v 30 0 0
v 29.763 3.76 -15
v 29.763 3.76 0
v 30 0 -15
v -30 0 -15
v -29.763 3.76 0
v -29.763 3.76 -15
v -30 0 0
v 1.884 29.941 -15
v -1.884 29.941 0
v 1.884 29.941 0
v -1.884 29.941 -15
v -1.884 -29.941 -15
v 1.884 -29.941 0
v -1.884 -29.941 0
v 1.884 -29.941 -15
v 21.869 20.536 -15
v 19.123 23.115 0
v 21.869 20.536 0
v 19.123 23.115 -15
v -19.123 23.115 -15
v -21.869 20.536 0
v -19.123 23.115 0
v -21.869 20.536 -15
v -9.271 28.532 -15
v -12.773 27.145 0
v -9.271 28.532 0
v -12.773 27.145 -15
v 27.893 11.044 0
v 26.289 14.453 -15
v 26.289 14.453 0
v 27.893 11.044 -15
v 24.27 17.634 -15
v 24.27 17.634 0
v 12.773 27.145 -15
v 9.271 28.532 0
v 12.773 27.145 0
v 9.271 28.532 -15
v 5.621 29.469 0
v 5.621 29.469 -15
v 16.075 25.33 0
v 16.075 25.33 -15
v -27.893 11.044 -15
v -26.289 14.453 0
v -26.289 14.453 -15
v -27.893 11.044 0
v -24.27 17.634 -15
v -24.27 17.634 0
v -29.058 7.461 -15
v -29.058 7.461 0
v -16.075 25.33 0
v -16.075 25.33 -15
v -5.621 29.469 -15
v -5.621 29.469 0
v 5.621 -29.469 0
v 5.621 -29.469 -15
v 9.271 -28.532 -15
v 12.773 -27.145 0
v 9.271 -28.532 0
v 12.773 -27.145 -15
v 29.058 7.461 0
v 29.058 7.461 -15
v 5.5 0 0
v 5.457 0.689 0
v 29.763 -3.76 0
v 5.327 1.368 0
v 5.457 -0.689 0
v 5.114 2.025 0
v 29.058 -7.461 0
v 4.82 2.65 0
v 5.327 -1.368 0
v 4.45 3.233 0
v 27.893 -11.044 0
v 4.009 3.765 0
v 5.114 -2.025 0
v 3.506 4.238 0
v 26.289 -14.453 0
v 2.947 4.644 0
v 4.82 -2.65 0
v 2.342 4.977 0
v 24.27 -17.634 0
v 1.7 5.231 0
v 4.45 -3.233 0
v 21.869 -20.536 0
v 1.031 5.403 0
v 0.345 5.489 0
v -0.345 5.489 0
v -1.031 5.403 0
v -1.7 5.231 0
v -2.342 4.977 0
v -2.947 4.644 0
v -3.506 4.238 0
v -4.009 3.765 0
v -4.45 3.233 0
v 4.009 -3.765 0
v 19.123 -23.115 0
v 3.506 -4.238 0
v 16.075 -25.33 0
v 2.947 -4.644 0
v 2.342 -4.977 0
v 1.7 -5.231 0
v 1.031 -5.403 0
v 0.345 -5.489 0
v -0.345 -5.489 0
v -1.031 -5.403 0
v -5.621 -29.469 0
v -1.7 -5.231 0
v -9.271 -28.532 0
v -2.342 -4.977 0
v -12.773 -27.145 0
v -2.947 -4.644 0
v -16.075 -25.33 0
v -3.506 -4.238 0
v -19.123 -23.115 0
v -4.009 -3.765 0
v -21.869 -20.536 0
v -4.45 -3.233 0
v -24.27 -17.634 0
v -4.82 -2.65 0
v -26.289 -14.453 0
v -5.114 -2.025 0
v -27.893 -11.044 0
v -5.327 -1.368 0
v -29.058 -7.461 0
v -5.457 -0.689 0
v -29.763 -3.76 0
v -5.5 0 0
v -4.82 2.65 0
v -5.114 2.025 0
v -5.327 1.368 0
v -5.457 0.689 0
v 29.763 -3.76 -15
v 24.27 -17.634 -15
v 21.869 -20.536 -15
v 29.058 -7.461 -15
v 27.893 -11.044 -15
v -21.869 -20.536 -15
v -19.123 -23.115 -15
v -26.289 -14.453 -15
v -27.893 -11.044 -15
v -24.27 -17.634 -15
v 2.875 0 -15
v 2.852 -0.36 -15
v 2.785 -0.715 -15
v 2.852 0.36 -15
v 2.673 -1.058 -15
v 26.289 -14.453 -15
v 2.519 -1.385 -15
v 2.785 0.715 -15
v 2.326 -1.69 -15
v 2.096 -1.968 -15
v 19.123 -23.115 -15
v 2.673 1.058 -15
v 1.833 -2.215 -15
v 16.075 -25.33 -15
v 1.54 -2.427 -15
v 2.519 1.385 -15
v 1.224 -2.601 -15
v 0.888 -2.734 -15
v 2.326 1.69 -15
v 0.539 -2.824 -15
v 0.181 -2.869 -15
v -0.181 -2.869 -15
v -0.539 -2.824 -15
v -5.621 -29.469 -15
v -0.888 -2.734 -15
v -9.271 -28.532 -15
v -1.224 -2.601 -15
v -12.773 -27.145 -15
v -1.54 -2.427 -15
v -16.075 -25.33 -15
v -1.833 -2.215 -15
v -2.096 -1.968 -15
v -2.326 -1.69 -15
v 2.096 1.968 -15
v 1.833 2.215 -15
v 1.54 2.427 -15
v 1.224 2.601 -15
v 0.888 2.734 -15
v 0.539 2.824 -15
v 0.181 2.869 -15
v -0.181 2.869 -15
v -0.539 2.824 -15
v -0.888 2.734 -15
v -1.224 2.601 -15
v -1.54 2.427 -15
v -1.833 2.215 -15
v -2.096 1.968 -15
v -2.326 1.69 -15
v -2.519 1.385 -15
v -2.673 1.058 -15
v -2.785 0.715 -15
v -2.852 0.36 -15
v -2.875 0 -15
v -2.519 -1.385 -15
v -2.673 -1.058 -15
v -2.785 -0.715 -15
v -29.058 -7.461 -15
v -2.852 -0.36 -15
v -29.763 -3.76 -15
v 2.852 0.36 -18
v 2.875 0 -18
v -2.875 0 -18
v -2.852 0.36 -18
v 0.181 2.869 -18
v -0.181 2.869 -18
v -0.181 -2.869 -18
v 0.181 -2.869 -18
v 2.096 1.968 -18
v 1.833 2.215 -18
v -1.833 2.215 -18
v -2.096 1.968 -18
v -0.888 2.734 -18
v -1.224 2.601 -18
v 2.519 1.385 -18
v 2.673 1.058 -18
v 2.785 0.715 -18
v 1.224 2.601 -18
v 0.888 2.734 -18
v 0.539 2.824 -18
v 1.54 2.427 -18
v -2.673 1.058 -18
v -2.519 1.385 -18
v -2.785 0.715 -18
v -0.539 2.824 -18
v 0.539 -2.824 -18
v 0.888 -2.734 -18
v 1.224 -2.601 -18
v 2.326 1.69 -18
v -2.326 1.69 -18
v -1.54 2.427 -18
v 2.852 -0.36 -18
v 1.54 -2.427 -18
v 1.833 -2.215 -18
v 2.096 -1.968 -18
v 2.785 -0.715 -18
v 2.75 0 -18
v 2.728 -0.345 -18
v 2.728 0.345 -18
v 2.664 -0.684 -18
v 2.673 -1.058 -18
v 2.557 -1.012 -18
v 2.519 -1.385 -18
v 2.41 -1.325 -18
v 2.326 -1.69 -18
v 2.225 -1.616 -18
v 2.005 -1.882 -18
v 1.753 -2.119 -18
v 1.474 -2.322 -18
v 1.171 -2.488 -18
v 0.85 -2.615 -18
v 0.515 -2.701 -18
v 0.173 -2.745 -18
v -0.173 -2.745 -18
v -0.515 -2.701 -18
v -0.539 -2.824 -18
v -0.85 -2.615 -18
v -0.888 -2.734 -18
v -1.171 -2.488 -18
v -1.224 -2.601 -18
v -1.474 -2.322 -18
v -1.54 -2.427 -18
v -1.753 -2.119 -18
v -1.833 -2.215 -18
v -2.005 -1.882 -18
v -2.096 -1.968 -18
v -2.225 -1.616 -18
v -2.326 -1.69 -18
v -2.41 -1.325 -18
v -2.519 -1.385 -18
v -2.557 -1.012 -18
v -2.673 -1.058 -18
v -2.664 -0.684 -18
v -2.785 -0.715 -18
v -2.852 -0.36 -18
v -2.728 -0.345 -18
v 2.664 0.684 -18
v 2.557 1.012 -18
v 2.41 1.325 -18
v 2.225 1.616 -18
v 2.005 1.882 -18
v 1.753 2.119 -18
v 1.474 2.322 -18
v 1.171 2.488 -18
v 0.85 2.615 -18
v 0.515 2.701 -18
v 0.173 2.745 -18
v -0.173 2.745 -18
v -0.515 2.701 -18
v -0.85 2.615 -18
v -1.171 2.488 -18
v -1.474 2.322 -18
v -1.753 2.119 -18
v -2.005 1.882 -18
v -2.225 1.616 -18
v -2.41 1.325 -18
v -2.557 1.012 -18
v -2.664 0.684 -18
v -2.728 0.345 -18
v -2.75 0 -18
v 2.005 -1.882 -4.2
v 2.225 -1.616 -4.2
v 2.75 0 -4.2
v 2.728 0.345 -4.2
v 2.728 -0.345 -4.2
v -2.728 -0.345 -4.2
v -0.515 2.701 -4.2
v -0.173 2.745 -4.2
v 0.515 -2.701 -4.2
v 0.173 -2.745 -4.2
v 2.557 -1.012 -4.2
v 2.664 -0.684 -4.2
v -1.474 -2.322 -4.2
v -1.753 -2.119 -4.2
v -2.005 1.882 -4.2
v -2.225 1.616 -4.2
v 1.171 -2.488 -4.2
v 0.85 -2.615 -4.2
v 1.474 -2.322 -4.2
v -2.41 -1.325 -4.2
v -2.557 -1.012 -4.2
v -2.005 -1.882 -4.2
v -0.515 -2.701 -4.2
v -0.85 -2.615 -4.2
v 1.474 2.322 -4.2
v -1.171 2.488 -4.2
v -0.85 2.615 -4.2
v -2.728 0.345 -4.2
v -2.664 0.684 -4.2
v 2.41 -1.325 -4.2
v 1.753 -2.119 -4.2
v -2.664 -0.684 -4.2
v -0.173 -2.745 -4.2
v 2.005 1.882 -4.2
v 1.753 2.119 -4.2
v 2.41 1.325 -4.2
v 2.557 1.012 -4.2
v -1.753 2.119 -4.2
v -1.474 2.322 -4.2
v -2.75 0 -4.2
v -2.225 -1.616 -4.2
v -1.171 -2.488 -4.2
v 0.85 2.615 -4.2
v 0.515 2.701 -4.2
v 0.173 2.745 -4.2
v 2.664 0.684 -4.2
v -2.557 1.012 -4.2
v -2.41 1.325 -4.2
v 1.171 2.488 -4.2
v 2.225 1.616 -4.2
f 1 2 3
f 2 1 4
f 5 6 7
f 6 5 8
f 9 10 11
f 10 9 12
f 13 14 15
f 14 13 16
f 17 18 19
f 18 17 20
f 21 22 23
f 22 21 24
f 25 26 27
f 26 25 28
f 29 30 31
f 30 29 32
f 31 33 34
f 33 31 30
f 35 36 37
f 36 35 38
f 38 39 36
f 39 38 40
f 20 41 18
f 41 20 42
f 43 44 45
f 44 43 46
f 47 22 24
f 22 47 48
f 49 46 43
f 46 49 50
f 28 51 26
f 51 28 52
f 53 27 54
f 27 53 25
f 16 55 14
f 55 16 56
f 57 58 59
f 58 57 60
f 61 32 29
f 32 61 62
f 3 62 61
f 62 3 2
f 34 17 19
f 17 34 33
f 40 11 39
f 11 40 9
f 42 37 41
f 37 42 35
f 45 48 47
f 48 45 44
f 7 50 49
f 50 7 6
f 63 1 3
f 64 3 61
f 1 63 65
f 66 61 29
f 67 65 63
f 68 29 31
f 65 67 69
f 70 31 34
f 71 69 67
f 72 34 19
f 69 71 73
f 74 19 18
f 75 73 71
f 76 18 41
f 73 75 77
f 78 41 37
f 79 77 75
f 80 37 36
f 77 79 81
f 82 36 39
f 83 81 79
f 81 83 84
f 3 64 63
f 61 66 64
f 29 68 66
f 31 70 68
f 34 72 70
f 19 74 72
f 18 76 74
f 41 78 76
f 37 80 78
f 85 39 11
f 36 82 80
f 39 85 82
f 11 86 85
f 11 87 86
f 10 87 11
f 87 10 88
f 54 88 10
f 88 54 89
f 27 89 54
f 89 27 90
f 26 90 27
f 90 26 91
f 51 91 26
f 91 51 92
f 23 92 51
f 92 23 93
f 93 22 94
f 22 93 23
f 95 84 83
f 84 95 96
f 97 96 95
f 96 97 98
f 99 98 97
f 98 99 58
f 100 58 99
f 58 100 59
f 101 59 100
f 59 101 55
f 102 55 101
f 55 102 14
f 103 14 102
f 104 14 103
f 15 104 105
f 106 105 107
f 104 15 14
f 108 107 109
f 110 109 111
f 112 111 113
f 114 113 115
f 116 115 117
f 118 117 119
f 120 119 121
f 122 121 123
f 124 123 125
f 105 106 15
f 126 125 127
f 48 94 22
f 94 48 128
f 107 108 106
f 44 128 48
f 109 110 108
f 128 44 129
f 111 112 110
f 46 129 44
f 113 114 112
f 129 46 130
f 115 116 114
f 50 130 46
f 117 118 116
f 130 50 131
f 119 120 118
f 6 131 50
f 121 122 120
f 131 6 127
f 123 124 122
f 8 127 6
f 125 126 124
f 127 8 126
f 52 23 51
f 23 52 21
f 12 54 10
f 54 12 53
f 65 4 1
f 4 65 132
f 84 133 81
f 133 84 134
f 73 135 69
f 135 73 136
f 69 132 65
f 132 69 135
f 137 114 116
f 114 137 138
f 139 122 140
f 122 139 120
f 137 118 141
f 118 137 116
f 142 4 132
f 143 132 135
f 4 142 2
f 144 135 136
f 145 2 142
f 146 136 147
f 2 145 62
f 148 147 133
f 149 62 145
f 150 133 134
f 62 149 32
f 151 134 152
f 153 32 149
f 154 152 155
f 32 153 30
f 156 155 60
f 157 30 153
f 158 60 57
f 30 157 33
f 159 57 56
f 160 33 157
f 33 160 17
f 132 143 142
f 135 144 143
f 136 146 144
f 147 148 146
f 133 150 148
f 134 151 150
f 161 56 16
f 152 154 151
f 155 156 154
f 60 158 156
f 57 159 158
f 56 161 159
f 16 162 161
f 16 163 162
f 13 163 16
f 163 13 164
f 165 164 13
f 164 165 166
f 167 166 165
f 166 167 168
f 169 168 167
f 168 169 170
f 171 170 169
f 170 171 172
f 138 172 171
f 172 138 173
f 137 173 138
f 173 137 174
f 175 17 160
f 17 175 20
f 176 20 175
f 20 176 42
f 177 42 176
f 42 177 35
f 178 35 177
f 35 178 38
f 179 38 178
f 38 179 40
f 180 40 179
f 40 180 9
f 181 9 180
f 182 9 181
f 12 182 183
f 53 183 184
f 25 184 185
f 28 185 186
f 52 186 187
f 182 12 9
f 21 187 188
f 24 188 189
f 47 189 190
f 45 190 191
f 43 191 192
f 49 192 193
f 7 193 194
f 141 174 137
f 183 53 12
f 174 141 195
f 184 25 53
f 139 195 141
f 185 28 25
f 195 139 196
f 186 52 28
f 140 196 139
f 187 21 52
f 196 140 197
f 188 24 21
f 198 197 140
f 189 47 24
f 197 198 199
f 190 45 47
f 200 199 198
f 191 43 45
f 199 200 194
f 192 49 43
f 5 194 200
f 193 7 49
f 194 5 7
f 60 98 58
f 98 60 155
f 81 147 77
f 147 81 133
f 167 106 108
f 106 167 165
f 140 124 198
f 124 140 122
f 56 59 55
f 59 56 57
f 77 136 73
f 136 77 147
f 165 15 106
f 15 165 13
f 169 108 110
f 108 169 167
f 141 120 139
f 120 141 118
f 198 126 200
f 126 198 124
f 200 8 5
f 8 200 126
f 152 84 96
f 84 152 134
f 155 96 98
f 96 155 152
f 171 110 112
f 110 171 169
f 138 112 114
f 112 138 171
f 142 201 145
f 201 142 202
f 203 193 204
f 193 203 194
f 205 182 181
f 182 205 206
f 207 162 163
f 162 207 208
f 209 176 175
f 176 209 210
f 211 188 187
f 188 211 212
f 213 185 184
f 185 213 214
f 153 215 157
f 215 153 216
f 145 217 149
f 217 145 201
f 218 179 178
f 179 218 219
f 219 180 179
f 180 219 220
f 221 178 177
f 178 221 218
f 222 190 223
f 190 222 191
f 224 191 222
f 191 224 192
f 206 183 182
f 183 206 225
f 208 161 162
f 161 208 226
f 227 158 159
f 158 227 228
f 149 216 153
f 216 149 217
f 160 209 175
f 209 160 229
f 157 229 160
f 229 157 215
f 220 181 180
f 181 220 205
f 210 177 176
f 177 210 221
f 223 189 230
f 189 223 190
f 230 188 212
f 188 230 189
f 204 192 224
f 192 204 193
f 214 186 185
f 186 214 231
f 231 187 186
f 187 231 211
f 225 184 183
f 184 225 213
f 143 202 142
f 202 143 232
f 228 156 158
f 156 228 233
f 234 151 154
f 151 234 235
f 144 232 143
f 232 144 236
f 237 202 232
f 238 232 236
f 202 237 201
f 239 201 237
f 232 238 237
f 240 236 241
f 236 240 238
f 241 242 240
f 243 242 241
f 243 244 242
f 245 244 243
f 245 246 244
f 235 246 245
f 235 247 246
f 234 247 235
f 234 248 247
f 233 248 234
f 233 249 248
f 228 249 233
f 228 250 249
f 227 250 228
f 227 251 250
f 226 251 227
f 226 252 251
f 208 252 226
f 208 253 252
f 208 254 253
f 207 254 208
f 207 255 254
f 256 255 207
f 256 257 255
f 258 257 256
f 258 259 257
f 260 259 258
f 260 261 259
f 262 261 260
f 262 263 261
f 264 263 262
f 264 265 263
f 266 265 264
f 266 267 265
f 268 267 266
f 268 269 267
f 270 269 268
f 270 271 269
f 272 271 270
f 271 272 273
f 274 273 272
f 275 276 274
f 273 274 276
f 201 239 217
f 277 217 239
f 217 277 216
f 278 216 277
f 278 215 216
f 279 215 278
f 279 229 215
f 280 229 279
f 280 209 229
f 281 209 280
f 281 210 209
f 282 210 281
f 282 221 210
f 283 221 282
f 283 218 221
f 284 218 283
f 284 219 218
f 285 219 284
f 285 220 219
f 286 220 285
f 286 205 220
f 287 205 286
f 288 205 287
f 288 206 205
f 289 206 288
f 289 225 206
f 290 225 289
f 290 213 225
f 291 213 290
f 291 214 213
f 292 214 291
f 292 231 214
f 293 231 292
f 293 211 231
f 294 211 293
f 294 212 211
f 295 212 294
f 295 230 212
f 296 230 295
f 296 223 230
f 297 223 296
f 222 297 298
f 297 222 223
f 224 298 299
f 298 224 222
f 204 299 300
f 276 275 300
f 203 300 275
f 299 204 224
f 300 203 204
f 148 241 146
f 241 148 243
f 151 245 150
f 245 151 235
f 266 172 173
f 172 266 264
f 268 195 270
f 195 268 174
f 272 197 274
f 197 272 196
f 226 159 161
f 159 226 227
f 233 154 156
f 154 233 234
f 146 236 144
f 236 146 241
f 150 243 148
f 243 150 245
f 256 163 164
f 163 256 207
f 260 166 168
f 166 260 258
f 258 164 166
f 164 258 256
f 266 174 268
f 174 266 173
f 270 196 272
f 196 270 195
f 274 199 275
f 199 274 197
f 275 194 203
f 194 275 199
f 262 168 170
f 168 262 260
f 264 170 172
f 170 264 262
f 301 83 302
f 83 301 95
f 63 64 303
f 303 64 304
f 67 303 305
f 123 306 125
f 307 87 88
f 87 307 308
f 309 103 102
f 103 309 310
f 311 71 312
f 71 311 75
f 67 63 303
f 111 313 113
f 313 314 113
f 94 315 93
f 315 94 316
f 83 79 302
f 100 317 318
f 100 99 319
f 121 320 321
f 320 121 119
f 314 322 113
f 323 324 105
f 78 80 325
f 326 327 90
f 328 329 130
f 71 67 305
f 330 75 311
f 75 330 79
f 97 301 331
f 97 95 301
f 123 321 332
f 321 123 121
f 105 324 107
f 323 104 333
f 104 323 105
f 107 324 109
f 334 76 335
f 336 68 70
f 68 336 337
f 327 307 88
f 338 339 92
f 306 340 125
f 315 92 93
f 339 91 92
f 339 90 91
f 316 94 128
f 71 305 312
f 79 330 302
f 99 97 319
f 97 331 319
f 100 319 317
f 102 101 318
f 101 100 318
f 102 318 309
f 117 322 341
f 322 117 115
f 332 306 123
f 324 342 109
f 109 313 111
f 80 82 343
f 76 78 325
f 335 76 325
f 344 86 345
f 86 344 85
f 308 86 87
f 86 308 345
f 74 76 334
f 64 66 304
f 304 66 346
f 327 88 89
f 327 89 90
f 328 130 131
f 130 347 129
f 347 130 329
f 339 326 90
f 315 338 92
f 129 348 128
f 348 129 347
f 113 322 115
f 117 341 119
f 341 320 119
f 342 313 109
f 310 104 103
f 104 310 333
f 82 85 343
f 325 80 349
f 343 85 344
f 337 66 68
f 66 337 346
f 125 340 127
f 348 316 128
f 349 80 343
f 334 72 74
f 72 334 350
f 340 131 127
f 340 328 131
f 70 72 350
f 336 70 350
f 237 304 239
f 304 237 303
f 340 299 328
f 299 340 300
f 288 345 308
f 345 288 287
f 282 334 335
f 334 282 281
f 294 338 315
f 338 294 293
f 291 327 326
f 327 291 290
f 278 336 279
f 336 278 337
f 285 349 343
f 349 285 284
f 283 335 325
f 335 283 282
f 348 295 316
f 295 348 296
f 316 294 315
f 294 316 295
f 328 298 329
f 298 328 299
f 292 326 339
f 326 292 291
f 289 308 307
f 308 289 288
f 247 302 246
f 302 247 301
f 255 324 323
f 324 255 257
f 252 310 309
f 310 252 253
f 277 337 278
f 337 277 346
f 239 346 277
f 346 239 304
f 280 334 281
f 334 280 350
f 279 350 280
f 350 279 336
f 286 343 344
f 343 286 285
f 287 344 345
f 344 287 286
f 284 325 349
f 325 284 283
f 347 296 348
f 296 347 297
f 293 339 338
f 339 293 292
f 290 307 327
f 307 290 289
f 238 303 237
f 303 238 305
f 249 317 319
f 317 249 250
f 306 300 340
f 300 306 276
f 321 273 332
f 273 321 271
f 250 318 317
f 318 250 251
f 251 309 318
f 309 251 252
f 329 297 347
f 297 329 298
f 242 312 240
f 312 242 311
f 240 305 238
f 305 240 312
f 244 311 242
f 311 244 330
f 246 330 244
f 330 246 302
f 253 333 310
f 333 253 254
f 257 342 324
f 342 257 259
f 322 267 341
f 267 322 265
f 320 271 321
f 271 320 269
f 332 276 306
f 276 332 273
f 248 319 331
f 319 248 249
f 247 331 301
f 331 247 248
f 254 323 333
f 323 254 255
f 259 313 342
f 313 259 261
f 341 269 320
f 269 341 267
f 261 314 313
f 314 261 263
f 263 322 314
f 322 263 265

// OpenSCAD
$fn = 50;

difference() {
	union() {
		translate(v = [0, 0, -15.0]) {
			cylinder(h = 15, r = 30.0);
		}
		#translate(v = [0, 0, -18.0]) {
			cylinder(h = 18, r = 2.875);
		}
	}
	union() {
		translate(v = [0, 0, 0]) {
			rotate(a = [0, 0, 0]) {
				difference() {
					union() {
						translate(v = [0, 0, -18.0]) {
							cylinder(h = 18, r = 2.25);
						}
						translate(v = [0, 0, -4.2]) {
							cylinder(h = 4.2, r1 = 2.75, r2 = 5.5);
						}
						translate(v = [0, 0, -18.0]) {
							cylinder(h = 18, r = 2.75);
						}
						translate(v = [0, 0, -18.0]) {
							cylinder(h = 18, r = 2.25);
						}
					}
					union();
				}
			}
		}
	}
}
